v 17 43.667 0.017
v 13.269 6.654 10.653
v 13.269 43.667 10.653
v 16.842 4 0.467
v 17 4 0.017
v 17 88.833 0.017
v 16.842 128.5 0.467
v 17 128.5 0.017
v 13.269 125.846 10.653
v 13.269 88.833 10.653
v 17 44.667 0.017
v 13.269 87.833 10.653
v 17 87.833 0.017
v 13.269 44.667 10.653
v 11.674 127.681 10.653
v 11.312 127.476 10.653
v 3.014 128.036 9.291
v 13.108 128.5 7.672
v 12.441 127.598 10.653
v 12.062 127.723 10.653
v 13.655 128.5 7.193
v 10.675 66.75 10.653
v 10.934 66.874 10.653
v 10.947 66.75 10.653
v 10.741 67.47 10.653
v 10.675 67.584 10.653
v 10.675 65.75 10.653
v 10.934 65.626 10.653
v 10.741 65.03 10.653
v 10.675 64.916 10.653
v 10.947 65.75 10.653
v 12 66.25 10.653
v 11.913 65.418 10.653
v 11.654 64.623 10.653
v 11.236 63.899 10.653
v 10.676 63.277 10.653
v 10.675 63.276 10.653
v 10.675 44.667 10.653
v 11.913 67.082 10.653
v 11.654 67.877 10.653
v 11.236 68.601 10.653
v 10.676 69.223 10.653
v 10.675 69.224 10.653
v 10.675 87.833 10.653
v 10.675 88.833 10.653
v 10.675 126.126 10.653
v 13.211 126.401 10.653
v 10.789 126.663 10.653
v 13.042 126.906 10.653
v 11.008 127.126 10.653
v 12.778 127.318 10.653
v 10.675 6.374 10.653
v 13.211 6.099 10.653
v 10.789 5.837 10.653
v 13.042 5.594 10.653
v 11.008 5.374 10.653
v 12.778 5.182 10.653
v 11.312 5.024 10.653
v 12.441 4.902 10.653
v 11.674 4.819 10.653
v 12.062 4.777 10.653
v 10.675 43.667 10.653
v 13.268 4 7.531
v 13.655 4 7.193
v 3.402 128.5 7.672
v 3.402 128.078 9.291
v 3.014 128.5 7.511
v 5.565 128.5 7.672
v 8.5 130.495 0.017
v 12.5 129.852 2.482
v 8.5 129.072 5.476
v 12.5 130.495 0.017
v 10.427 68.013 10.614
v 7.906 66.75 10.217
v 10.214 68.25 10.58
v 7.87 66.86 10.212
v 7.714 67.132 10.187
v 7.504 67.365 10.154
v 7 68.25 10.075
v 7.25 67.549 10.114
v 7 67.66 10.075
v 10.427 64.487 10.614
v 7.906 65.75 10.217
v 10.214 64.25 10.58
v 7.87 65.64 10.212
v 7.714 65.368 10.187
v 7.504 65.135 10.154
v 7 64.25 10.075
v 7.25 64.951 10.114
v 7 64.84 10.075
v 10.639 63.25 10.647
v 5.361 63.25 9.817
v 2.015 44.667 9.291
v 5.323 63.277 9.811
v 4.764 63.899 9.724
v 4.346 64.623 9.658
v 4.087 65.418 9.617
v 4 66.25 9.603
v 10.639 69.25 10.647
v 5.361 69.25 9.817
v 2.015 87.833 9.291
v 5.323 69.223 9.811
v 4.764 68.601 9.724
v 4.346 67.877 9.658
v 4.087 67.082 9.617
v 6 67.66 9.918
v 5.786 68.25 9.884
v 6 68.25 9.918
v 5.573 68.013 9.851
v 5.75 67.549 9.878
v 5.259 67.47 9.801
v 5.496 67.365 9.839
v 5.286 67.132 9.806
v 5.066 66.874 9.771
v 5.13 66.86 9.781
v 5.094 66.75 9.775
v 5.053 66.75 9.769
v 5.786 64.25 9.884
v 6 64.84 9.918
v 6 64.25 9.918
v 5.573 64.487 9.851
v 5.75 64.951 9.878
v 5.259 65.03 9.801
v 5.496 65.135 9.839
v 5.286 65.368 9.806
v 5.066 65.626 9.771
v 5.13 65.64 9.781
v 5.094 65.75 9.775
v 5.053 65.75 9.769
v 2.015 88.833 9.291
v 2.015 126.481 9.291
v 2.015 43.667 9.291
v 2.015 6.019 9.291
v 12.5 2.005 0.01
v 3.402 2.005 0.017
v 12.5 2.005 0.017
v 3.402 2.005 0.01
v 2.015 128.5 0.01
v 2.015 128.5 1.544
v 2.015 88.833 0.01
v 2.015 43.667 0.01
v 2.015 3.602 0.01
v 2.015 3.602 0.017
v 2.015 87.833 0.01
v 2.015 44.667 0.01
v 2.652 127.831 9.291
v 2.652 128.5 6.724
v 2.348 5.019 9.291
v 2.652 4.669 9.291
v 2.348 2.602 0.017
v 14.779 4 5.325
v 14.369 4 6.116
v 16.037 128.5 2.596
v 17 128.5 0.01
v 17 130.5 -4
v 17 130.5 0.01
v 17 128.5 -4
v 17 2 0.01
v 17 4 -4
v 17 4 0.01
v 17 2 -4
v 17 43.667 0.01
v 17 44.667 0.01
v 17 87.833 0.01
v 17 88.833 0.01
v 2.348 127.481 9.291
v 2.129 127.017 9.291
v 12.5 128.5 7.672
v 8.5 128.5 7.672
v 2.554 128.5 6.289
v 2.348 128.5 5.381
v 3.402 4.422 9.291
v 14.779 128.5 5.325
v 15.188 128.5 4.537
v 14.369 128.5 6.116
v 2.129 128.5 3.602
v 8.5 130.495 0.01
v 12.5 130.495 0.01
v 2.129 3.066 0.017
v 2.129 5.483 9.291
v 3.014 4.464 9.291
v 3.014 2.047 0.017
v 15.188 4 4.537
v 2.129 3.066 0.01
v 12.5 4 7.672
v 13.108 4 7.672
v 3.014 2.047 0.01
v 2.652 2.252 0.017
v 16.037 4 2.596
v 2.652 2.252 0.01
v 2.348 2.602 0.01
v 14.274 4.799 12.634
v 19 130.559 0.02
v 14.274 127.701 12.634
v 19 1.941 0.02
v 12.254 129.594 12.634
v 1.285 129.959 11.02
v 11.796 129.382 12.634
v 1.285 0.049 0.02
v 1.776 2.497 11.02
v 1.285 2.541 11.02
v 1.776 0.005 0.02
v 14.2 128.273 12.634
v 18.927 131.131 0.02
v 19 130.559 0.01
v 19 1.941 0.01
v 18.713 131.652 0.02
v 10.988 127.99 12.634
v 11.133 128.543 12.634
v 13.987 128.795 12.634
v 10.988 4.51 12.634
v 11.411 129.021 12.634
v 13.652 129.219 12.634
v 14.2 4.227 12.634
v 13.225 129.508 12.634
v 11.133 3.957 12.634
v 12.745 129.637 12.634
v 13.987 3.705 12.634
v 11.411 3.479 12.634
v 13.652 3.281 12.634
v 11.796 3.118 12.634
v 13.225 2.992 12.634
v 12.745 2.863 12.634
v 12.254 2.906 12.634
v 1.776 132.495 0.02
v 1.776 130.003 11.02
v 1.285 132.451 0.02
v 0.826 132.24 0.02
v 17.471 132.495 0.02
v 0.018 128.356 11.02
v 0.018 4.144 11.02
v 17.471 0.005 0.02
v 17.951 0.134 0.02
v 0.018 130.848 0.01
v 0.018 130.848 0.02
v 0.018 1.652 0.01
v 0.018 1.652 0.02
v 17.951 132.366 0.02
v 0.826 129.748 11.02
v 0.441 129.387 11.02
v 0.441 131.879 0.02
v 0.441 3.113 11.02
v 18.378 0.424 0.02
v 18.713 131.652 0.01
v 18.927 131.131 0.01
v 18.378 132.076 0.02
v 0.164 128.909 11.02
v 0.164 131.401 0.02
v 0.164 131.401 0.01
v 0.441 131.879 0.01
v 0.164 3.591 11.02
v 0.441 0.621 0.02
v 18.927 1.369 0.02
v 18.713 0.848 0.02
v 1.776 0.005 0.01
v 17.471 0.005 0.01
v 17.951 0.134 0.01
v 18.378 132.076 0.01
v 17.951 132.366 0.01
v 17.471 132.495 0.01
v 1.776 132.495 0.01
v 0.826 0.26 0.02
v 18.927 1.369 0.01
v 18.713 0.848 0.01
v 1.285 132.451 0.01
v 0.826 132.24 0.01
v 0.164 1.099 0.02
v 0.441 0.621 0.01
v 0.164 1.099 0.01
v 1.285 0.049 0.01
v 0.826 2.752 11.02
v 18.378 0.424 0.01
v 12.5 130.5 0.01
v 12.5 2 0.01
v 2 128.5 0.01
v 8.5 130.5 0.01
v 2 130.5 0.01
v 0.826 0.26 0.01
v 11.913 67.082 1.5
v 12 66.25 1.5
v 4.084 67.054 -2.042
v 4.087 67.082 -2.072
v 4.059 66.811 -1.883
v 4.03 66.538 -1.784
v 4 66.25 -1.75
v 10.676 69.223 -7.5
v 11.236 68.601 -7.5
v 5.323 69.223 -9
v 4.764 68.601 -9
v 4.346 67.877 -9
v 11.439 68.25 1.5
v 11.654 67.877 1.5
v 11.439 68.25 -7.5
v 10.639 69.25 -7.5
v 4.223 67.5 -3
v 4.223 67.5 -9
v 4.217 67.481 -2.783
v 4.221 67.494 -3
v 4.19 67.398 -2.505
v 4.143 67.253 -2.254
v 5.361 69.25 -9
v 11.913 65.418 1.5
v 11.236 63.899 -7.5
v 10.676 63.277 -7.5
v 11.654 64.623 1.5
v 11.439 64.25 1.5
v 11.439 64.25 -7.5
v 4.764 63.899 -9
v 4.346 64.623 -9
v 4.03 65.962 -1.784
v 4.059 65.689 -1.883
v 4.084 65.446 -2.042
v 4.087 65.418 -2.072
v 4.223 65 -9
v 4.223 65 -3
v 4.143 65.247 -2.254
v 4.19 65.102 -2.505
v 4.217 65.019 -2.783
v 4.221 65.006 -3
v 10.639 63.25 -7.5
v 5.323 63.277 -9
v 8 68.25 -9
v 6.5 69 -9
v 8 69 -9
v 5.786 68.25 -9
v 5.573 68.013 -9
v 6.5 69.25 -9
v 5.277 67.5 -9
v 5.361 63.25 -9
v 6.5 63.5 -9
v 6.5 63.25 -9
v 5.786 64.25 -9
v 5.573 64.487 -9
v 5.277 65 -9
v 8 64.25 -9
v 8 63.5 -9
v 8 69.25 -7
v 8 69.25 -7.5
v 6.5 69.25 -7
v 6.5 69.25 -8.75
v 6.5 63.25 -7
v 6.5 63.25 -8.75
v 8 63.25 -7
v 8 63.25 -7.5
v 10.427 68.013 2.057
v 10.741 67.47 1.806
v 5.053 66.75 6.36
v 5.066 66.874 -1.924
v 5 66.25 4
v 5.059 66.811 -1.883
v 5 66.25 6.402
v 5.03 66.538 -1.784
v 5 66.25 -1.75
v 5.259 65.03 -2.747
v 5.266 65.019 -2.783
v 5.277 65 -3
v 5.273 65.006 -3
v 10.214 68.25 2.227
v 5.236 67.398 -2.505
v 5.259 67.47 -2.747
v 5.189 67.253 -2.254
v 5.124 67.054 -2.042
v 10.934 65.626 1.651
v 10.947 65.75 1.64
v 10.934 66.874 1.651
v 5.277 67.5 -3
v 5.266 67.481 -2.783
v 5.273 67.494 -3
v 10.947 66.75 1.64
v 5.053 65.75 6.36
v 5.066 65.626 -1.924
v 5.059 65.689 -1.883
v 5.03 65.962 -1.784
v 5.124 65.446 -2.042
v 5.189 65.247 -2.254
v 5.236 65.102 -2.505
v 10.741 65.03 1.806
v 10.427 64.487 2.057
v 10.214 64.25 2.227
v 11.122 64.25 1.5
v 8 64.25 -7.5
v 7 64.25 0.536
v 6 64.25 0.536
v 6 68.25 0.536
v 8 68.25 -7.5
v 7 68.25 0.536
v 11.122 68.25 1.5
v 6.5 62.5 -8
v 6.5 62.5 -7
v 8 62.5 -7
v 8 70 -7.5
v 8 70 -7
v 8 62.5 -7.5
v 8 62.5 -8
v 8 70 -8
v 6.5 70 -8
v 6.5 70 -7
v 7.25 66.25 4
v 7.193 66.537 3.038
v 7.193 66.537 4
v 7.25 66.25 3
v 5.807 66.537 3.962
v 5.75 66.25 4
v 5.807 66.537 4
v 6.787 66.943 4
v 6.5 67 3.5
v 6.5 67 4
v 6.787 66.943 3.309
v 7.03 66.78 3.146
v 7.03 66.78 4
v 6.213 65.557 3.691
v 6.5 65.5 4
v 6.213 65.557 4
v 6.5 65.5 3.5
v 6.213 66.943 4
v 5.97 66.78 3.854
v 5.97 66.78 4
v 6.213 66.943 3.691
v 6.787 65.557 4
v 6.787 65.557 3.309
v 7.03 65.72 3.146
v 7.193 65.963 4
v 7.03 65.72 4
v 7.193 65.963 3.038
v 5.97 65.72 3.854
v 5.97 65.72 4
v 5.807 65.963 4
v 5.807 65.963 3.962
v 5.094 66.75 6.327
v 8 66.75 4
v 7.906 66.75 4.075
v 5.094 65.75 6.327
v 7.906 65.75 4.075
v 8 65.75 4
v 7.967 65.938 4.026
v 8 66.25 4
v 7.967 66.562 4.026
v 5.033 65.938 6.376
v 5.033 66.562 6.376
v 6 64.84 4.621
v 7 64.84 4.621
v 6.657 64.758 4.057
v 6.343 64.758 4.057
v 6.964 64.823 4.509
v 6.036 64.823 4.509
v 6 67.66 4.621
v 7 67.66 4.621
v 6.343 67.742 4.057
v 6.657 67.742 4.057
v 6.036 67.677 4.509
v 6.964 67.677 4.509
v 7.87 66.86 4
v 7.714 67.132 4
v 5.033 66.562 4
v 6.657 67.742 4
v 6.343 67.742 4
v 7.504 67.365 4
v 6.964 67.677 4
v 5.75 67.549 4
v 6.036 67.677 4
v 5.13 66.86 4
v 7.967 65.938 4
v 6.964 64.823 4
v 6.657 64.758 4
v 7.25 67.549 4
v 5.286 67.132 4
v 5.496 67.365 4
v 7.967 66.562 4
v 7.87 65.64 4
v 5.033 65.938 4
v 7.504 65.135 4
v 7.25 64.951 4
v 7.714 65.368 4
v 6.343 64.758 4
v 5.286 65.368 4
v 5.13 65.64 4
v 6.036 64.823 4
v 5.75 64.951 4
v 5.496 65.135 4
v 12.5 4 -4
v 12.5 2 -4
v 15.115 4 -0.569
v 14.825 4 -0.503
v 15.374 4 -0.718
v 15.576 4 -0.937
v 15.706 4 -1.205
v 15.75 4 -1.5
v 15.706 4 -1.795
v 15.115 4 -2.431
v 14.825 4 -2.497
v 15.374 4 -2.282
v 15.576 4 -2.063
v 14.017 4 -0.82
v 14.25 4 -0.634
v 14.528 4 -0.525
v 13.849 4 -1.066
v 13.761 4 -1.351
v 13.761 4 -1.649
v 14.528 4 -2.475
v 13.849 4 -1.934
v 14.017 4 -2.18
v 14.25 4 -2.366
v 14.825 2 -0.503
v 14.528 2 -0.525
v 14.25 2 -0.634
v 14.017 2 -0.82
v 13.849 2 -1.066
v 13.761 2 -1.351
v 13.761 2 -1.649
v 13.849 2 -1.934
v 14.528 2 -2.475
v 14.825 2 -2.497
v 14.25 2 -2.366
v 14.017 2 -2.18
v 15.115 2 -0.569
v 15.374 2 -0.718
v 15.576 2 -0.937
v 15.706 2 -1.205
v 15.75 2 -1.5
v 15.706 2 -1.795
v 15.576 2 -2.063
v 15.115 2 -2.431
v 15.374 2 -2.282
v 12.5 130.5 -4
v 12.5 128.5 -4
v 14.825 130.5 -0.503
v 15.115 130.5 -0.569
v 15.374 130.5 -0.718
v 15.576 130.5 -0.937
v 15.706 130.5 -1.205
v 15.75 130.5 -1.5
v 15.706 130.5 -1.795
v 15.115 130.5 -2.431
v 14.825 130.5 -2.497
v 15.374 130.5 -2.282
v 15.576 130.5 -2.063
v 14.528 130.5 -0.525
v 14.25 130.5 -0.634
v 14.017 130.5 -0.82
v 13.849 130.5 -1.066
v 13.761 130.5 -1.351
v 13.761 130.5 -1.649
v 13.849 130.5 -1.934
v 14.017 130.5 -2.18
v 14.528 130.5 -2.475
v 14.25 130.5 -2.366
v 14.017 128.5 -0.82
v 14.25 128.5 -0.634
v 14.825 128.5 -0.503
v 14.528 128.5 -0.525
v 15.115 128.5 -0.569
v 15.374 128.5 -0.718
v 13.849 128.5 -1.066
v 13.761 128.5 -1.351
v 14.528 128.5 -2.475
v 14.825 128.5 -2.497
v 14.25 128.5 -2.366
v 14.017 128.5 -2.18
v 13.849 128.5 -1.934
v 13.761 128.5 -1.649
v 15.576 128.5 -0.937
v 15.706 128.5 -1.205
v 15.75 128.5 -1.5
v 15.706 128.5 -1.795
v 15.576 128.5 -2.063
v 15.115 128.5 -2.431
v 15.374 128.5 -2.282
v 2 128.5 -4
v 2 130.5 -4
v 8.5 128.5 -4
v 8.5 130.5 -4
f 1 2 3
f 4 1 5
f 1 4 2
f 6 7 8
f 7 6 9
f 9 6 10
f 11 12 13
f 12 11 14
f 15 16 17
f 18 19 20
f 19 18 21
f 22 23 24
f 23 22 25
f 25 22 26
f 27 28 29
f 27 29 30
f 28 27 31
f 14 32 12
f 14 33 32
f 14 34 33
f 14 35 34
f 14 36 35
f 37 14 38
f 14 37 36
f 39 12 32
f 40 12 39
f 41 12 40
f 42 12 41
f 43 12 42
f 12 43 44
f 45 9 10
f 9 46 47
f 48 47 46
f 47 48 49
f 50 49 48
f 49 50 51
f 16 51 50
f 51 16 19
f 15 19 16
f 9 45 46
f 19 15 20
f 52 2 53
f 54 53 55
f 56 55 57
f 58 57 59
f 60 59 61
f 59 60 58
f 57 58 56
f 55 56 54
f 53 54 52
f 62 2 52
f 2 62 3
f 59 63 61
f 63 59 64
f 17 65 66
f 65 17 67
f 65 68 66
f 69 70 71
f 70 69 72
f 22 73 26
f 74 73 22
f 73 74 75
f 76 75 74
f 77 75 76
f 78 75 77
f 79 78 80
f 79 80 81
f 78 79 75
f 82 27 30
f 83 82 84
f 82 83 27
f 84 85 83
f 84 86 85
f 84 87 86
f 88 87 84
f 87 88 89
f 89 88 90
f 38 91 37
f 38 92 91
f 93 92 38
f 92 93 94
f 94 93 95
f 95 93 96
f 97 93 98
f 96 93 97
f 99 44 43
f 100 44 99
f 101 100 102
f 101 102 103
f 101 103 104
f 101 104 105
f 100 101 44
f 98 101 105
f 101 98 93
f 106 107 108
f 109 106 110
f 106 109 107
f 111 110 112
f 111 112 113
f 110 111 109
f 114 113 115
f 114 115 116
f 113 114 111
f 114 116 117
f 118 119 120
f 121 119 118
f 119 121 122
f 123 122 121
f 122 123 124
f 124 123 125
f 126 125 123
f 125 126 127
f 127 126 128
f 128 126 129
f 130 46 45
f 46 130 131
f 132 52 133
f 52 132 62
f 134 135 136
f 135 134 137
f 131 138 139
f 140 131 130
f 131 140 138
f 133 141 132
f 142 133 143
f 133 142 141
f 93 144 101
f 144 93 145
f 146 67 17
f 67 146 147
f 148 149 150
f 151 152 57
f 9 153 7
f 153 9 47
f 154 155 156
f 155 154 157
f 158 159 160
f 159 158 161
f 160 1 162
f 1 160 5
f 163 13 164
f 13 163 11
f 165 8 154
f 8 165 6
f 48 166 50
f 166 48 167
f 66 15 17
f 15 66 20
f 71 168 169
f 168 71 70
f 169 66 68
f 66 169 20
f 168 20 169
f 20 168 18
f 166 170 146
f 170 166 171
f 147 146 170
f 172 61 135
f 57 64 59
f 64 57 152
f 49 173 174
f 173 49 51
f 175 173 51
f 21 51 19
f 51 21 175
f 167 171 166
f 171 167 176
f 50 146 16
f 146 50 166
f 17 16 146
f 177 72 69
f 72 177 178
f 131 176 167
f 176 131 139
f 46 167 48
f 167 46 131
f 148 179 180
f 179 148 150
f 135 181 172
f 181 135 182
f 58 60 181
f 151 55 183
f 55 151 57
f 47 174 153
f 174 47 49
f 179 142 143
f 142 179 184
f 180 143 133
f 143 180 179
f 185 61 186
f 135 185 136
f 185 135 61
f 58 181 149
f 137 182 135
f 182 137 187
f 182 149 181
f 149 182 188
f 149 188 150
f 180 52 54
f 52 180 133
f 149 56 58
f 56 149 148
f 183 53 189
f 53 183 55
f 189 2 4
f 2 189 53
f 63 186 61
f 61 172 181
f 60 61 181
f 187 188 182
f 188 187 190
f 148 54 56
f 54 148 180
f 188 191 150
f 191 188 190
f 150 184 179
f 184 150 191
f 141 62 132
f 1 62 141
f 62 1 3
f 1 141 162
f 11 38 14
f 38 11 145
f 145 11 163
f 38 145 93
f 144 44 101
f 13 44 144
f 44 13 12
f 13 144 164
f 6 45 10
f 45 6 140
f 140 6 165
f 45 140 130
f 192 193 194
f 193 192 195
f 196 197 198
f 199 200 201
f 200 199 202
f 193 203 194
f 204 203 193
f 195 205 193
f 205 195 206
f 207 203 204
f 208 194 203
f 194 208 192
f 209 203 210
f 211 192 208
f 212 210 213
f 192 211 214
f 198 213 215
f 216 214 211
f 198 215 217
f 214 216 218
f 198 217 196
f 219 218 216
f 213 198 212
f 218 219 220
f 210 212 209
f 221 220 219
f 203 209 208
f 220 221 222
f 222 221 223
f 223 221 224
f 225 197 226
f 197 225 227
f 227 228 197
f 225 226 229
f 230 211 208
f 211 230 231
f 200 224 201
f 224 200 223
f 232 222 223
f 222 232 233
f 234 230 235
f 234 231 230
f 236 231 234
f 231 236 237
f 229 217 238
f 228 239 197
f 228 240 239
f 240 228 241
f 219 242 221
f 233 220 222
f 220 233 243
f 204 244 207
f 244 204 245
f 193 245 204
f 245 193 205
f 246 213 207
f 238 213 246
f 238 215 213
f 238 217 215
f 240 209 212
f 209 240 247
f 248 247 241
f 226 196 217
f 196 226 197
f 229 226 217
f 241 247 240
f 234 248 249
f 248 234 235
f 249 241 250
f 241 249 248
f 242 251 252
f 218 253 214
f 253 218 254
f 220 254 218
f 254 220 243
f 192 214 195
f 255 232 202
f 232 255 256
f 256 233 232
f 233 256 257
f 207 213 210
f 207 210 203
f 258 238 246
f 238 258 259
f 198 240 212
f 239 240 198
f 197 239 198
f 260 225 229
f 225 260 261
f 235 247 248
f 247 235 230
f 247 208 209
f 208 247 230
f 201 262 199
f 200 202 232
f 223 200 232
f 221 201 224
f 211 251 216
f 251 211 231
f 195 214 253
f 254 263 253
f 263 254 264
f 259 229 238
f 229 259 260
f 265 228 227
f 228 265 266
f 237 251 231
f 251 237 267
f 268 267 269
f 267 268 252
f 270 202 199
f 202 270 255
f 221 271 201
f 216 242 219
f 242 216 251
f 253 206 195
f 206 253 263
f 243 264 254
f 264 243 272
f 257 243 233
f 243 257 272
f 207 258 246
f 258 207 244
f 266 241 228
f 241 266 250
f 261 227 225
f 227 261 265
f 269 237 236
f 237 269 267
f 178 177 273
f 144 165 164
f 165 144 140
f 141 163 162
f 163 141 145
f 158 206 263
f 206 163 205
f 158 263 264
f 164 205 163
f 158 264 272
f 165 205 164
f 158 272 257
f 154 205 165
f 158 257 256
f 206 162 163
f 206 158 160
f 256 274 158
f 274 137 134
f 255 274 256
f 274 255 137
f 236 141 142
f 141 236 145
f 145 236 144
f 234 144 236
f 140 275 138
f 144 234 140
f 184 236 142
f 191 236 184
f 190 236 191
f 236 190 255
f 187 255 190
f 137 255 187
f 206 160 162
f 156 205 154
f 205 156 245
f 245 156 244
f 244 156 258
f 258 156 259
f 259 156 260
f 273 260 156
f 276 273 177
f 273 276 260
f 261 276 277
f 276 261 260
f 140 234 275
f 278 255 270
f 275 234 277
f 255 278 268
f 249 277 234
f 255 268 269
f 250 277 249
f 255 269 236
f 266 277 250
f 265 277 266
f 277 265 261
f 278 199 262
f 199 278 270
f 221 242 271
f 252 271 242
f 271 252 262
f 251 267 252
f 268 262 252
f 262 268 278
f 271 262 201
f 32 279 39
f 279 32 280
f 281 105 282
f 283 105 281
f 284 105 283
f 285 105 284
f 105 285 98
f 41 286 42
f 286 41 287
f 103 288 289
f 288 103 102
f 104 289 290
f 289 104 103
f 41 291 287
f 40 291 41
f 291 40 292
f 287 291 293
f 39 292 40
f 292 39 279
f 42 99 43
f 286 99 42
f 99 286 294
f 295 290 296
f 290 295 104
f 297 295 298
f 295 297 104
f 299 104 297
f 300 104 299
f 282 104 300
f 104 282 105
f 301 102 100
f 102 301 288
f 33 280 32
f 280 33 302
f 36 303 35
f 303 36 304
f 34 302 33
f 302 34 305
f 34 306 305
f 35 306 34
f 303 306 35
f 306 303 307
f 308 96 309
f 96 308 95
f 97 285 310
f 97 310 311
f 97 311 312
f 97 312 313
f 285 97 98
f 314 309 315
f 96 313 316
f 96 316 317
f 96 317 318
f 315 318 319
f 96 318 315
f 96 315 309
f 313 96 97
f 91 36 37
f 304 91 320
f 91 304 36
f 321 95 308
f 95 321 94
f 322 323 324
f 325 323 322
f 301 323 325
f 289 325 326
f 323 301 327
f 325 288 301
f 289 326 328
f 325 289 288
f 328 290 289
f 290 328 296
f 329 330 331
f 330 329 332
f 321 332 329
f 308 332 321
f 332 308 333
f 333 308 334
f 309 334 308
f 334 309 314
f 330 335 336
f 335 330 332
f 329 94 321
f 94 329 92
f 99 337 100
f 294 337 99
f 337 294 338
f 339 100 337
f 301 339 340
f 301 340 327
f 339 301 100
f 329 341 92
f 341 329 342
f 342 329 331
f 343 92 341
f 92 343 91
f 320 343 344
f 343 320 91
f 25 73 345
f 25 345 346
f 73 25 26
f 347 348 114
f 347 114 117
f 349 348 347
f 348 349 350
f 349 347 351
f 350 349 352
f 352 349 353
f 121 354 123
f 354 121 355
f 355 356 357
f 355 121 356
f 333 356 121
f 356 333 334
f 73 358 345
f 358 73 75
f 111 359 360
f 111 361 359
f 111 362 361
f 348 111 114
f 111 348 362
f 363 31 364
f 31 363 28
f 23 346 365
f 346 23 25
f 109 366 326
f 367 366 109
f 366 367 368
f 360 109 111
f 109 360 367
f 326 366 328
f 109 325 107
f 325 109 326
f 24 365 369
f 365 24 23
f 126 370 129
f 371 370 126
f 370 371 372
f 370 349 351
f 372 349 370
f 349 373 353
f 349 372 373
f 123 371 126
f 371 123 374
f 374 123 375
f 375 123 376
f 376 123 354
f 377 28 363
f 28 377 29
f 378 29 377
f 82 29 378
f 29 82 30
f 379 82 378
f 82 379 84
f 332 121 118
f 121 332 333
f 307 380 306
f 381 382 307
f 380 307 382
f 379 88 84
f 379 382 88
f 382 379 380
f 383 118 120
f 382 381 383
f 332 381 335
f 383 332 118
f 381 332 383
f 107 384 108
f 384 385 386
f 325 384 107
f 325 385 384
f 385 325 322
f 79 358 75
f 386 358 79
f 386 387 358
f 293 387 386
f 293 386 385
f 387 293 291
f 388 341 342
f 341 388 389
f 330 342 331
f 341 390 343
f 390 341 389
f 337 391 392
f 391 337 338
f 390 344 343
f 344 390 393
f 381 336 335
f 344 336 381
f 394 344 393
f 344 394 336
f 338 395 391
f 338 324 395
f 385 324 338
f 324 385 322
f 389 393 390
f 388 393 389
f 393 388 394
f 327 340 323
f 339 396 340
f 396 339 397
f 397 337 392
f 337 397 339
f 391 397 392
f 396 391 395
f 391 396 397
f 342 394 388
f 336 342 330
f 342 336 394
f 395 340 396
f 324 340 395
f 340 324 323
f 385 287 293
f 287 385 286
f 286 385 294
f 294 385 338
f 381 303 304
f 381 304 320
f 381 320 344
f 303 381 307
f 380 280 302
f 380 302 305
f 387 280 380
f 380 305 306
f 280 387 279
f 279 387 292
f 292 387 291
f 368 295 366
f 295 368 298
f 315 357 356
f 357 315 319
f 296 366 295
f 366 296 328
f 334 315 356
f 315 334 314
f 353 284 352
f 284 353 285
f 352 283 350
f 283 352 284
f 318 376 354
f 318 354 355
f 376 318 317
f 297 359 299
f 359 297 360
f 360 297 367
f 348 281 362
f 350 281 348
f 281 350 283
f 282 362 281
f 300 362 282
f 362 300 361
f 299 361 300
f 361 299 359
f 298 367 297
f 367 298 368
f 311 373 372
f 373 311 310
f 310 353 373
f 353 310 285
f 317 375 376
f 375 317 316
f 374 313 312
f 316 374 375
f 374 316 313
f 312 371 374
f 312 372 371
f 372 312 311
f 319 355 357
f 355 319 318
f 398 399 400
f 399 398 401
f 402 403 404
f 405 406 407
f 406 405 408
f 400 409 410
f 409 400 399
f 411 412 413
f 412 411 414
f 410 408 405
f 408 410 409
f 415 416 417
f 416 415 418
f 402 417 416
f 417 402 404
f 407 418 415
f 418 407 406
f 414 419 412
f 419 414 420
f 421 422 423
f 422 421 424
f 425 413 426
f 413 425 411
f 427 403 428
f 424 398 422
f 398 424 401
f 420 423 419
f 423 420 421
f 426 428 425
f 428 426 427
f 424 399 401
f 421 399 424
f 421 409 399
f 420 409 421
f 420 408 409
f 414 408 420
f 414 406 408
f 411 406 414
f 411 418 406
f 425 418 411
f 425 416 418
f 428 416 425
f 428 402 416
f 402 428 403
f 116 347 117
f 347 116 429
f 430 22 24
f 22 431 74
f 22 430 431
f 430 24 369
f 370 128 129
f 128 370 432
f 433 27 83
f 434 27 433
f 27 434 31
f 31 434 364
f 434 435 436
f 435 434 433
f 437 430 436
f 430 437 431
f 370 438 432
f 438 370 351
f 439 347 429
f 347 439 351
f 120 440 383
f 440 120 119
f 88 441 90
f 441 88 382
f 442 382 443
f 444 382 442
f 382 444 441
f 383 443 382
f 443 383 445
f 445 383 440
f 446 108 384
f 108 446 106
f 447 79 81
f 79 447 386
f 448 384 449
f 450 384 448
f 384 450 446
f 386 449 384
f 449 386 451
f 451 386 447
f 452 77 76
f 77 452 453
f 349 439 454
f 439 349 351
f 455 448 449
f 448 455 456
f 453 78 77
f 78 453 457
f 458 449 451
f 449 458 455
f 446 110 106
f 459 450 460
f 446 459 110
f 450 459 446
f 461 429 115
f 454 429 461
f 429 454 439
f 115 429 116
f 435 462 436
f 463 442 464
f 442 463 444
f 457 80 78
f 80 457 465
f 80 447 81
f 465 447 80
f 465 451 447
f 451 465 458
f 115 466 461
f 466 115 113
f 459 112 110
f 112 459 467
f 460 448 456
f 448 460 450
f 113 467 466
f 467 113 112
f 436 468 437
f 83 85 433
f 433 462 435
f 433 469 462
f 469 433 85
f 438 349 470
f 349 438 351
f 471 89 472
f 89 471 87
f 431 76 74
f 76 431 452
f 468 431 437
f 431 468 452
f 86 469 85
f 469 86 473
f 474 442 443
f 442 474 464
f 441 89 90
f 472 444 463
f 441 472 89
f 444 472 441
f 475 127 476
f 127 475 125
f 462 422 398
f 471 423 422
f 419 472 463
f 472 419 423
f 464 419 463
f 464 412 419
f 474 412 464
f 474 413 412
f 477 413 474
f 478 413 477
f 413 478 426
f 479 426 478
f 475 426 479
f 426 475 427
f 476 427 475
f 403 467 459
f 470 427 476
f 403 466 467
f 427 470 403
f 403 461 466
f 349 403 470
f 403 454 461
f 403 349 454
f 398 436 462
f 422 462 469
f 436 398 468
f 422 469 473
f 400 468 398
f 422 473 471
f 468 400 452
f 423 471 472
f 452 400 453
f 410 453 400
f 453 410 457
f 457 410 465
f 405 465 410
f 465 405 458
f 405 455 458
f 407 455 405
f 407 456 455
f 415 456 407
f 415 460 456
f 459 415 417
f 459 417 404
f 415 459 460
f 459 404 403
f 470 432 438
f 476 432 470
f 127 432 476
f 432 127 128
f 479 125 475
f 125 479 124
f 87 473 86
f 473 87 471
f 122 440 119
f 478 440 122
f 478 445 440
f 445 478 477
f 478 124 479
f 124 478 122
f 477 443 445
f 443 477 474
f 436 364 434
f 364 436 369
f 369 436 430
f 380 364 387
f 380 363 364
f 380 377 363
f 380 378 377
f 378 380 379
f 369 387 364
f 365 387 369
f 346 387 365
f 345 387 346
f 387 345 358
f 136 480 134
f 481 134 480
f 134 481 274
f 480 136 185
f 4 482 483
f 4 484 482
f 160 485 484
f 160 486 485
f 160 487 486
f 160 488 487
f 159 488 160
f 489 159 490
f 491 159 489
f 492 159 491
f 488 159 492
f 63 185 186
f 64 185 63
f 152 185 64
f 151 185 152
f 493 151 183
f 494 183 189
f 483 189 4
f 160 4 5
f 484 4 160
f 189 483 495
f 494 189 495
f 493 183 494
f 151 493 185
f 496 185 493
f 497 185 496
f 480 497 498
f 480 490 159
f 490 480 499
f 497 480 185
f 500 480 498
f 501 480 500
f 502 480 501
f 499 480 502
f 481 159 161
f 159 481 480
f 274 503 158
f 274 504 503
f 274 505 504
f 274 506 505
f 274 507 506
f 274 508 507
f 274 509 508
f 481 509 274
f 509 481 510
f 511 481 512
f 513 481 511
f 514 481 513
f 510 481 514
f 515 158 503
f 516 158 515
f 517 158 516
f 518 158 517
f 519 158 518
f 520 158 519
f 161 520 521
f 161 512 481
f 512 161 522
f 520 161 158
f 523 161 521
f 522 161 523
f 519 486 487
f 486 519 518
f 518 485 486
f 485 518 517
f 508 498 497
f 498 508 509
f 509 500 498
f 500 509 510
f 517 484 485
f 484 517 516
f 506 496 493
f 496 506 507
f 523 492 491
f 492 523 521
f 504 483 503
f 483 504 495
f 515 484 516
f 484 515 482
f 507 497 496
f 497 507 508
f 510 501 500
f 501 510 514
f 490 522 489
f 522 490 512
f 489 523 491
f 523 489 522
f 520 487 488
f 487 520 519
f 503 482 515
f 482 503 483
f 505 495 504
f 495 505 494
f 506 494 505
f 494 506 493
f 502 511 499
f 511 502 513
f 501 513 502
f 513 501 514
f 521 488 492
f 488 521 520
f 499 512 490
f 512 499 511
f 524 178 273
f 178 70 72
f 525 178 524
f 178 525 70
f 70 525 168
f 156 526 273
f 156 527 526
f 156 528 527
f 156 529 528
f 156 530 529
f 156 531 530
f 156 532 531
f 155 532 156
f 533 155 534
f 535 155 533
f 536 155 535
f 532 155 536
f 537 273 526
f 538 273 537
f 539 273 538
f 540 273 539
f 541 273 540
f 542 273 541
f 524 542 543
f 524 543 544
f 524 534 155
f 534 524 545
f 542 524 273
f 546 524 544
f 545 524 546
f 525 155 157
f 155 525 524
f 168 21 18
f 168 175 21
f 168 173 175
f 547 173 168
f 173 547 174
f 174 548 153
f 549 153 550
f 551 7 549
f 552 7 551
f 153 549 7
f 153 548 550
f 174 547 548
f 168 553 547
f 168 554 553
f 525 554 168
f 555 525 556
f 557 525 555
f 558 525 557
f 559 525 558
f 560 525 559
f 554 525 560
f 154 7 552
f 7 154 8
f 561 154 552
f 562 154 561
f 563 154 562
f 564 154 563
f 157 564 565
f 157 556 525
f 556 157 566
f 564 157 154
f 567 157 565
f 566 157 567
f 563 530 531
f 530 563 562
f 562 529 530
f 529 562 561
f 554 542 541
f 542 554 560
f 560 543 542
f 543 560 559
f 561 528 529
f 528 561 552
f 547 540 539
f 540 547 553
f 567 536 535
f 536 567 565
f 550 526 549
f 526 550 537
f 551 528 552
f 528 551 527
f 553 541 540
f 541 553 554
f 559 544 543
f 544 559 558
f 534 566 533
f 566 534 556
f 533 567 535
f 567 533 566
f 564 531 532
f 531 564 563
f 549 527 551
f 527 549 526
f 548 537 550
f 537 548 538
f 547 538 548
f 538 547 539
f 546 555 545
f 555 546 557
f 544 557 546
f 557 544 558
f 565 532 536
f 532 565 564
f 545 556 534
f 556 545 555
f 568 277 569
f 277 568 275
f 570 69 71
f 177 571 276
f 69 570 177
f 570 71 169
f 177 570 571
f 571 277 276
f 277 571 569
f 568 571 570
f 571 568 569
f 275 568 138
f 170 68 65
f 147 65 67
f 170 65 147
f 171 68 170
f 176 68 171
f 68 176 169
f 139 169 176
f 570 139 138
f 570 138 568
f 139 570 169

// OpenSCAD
//measures are in millimeters
//(feel free to cocnvert them to attoparsecs)
AY=132.5;
AX=19.0;
BY=127.5;
BLX=14.5;
EZ=11.0;
FLZ=14.0;
H=12.75;
SHAFT_OFF_Y=AY/2;
SHAFT_OFF_X=8.0; //???
CLIP_X=2;
CLIP_Y=0.75;
CLIP_H=3*CLIP_Y;
CORNER_RADIUS=2;
SHAFT_X=8.0;
SHAFT_Y=6.0;
SHAFT_LENGTH=9.0;
SHAFT_THICKNESS=1.0;
SHAFT_CLIP_WIDTH=3.0;
SHAFT_CLIP_THICKNESS=0.75;
SHAFT_CLIP_HEIGHT=2.0;
SHAFT_CLIP_SLOPE_DEPTH=1.0;
SHAFT_CLIP_ANGLE=45;
SHAFT_END_CUTOUT_HEIGHT=1.5;
SHAFT_LARGE_SLOT_TO_BASE=1.5;
SHAFT_SMALL_SLOT_LENGTH=7.25;
SHAFT_SMALL_SLOT_WIDTH=2.5;
SHAFT_SPRING_HOLDER_WIDTH=3.0;
SHAFT_SPRING_HOLDER_TO_BASE=4.0;
SHAFT_SPRING_GUIDE_WIDTH=1.0;
SHAFT_SPRING_GUIDE_SIDES_HEIGHT=3.5;
STRUT_THICKNESS=1;
STRUT_HEIGHT=3;
STRUT_SPACING=1;
SHAFT_SPRING_HOLDER_NIPPLE_HEIGHT=1;
SHAFT_SPRING_HOLDER_NIPPLE_RADIUS=0.75;

WIRE_HOLDER_HEIGHT=4.0;
WIRE_HOLDER_WIDTH=4.5;
WIRE_DIAMETER=2.0;
WIRE_HOLE_OFF_Z=0.5;

MYSTERIOUS_TAB_WIDTH=6.5;
MYSTERIOUS_TAB_HEIGHT=5.5;

SHAFT_SMALL_SLOT_BEVEL=0.5;

WallThickness=2.0;
ClipWidth=2.2;
ClipDepth=0.75;

//ascfront=FLZ/sqrt(pow(FLZ,2)-pow(H,2));
//asctop=(H-EZ)/sqrt(pow(BLX,2)-pow((H-EZ),2));

alpha=asin((H-EZ)/BLX);
beta=asin(H/FLZ);
gamma=90-asin((0.5*(AY-BY))/EZ);

module keycap(){
	scale([AX/(AX+2*CORNER_RADIUS),AY/(AY+2*CORNER_RADIUS),1])
	translate([CORNER_RADIUS,CORNER_RADIUS,0.01])
	minkowski(){
		difference(){
			cube([AX,AY,H]);
			rotate(a=gamma,v=[1,0,0]) cube([200,200,200]);
			translate([0,AY,0]) rotate(a=90-gamma,v=[1,0,0]) cube([200,200,200]);
			translate([0,0,EZ]) rotate(a=-alpha,v=[0,1,0]) translate([-100,0,0]) cube([200,200,200]);
			translate([AX,0,0]) rotate(a=beta-90,v=[0,1,0]) cube([200,200,200]);
		}
		cylinder(h=0.01,r=CORNER_RADIUS,$fs=0.6);
		//rotate(a=90,v=[1,0,0]) cylinder(h=0.01,r=1,$fs=0.3);
	}
}

module shaft(){
	spring_guide_length = SHAFT_X-SHAFT_THICKNESS-SHAFT_SPRING_HOLDER_WIDTH;
	spring_guide_height = SHAFT_SPRING_HOLDER_TO_BASE-SHAFT_LARGE_SLOT_TO_BASE;
	translate([0,0,-SHAFT_LENGTH]) difference(){
		union(){
			difference(){
				union(){
					difference(){
						intersection(){
							cylinder(h=200,r=SHAFT_X/2,$fs=0.3);
							translate([-SHAFT_X/2,-SHAFT_Y/2,0]) cube([SHAFT_X,SHAFT_Y,200]);
						}
						intersection(){
							cylinder(h=200,r=SHAFT_X/2-SHAFT_THICKNESS,$fs=0.3);
							translate([-SHAFT_X/2+SHAFT_THICKNESS,-SHAFT_Y/2+SHAFT_THICKNESS,0]) cube([SHAFT_X-2*SHAFT_THICKNESS,SHAFT_Y-2*SHAFT_THICKNESS,200]);
						}
					}
					translate([-SHAFT_CLIP_WIDTH/2, -SHAFT_CLIP_THICKNESS-SHAFT_Y/2,0]) cube([SHAFT_CLIP_WIDTH/2, SHAFT_CLIP_THICKNESS,SHAFT_CLIP_HEIGHT]);
					translate([-SHAFT_CLIP_WIDTH/2, SHAFT_Y/2,0]) cube([SHAFT_CLIP_WIDTH/2, SHAFT_CLIP_THICKNESS,SHAFT_CLIP_HEIGHT]);
				}
				translate([-SHAFT_CLIP_WIDTH/2, -SHAFT_CLIP_THICKNESS-SHAFT_Y/2+SHAFT_CLIP_SLOPE_DEPTH,0]) rotate(a=90+SHAFT_CLIP_ANGLE,v=[1,0,0]) cube([SHAFT_CLIP_WIDTH/2,200,200]);
				translate([-SHAFT_CLIP_WIDTH/2, SHAFT_Y/2+SHAFT_CLIP_THICKNESS-SHAFT_CLIP_SLOPE_DEPTH,0]) mirror([0,1,0]) rotate(a=90+SHAFT_CLIP_ANGLE,v=[1,0,0]) cube([SHAFT_CLIP_WIDTH/2,200,200]);
				translate([0,-100,0]) cube([200,200,SHAFT_END_CUTOUT_HEIGHT]);
				translate([0,-SHAFT_Y/2+SHAFT_THICKNESS,0]) cube([200,SHAFT_Y-SHAFT_THICKNESS*2,SHAFT_LENGTH+SHAFT_LARGE_SLOT_TO_BASE]);
				//small slot cutout
				translate([0,-SHAFT_SMALL_SLOT_WIDTH/2,0]){
					mirror([1,0,0]) cube([200,SHAFT_SMALL_SLOT_WIDTH,SHAFT_SMALL_SLOT_LENGTH-0.5*SHAFT_SMALL_SLOT_WIDTH]);
				}
				//small slot cutout
				translate([0,0,SHAFT_SMALL_SLOT_LENGTH-0.5*SHAFT_SMALL_SLOT_WIDTH]) rotate(a=-90,v=[0,1,0]) cylinder(r=SHAFT_SMALL_SLOT_WIDTH/2,h=SHAFT_X/2,$fs=0.3);
			}
			//spring holder
			translate([-SHAFT_X/2+SHAFT_SPRING_HOLDER_WIDTH/2+SHAFT_THICKNESS,0,SHAFT_LENGTH+SHAFT_SPRING_HOLDER_TO_BASE]) cylinder(r=SHAFT_SPRING_HOLDER_WIDTH/2,h=200,$fs=0.3);
			intersection(){
				translate([-SHAFT_X/2+SHAFT_SPRING_HOLDER_WIDTH/2+SHAFT_THICKNESS,0,SHAFT_LENGTH+SHAFT_SPRING_HOLDER_TO_BASE-SHAFT_SPRING_HOLDER_NIPPLE_HEIGHT]) cylinder(r=SHAFT_SPRING_HOLDER_NIPPLE_RADIUS,h=200,$fs=0.3);
				translate([0,0,SHAFT_LENGTH+SHAFT_SPRING_HOLDER_TO_BASE-SHAFT_SPRING_HOLDER_NIPPLE_HEIGHT*1.5]) rotate(v=[0,1,0], a=atan(SHAFT_SPRING_HOLDER_NIPPLE_HEIGHT/(SHAFT_SPRING_HOLDER_NIPPLE_RADIUS*2)))              translate([-100,-100,0]) cube([200,200,200]);
			}
			intersection(){
				difference(){
					translate([SHAFT_X/2-SHAFT_THICKNESS,-0.5*SHAFT_SPRING_GUIDE_WIDTH,SHAFT_LENGTH+SHAFT_LARGE_SLOT_TO_BASE]) mirror([1,0,0]) cube([200,SHAFT_SPRING_GUIDE_WIDTH,200]);
					translate([-SHAFT_X/2+SHAFT_SPRING_HOLDER_WIDTH+SHAFT_THICKNESS,-0.5*SHAFT_SPRING_GUIDE_WIDTH,SHAFT_LENGTH+SHAFT_SPRING_HOLDER_TO_BASE])
					mirror([1,0,0]) rotate(a=90-asin(spring_guide_height/spring_guide_length),v=[0,1,0]) mirror([0,0,1]) translate([0,0,-100]) cube([200,SHAFT_SPRING_GUIDE_WIDTH,200]);
				}
				cube([SHAFT_X-SHAFT_THICKNESS,SHAFT_Y,200],center=true);
			}
			//side spring guides
			difference(){
				translate([-SHAFT_X/2+SHAFT_THICKNESS+(SHAFT_SPRING_HOLDER_WIDTH-SHAFT_SPRING_GUIDE_WIDTH)/2,-SHAFT_Y/2+SHAFT_THICKNESS,SHAFT_LENGTH+SHAFT_SPRING_HOLDER_TO_BASE-SHAFT_SPRING_GUIDE_SIDES_HEIGHT]) cube([SHAFT_SPRING_GUIDE_WIDTH,SHAFT_Y-2*SHAFT_THICKNESS,EZ-SHAFT_SPRING_HOLDER_TO_BASE+SHAFT_SPRING_GUIDE_SIDES_HEIGHT]);
				translate([-SHAFT_X/2+SHAFT_THICKNESS+(SHAFT_SPRING_HOLDER_WIDTH-SHAFT_SPRING_GUIDE_WIDTH)/2,-SHAFT_SPRING_HOLDER_WIDTH/2,SHAFT_LENGTH+SHAFT_SPRING_HOLDER_TO_BASE]) rotate(a=-asin(((SHAFT_Y-SHAFT_SPRING_HOLDER_WIDTH)/2-SHAFT_THICKNESS)/SHAFT_SPRING_GUIDE_SIDES_HEIGHT),v=[1,0,0]) translate([0,0,-100]) cube([SHAFT_SPRING_GUIDE_WIDTH,200,200]);
			}
			difference(){
				translate([-SHAFT_X/2+SHAFT_THICKNESS+(SHAFT_SPRING_HOLDER_WIDTH-SHAFT_SPRING_GUIDE_WIDTH)/2,-SHAFT_Y/2+SHAFT_THICKNESS,SHAFT_LENGTH+SHAFT_SPRING_HOLDER_TO_BASE-SHAFT_SPRING_GUIDE_SIDES_HEIGHT]) cube([SHAFT_SPRING_GUIDE_WIDTH,SHAFT_Y-2*SHAFT_THICKNESS,EZ-SHAFT_SPRING_HOLDER_TO_BASE+SHAFT_SPRING_GUIDE_SIDES_HEIGHT]);
				mirror([0,1,0]) translate([-SHAFT_X/2+SHAFT_THICKNESS+(SHAFT_SPRING_HOLDER_WIDTH-SHAFT_SPRING_GUIDE_WIDTH)/2,-SHAFT_SPRING_HOLDER_WIDTH/2,SHAFT_LENGTH+SHAFT_SPRING_HOLDER_TO_BASE]) rotate(a=-asin(((SHAFT_Y-SHAFT_SPRING_HOLDER_WIDTH)/2-SHAFT_THICKNESS)/SHAFT_SPRING_GUIDE_SIDES_HEIGHT),v=[1,0,0]) translate([0,0,-100]) cube([SHAFT_SPRING_GUIDE_WIDTH,200,200]);
			}
		}
		translate([-SHAFT_X/2+SHAFT_SPRING_HOLDER_WIDTH+SHAFT_THICKNESS,-SHAFT_Y/2+SHAFT_THICKNESS,SHAFT_LENGTH+SHAFT_SPRING_HOLDER_TO_BASE]) mirror([1,0,0]) rotate(a=90-asin(spring_guide_height/spring_guide_length),v=[0,1,0]) mirror([0,0,1]) cube([SHAFT_THICKNESS,SHAFT_Y-2*SHAFT_THICKNESS,200]);
	}
}

difference(){
	keycap();
	difference(){
		translate([WallThickness, WallThickness, 0]) scale(v=[1-2*WallThickness/AX, 1-2*WallThickness/AY, 1-WallThickness/H]) keycap();
		translate([0,AY/3,0]) cube([200,STRUT_THICKNESS,200],center=true);
		translate([0,2*AY/3,0]) cube([200,STRUT_THICKNESS,200],center=true);
	}
}
intersection(){
	union(){
		translate([WallThickness, WallThickness, 0]) scale(v=[1-2*WallThickness/AX, 1-2*WallThickness/AY, 1-WallThickness/H]) keycap();
		translate([-200,-200,-399.9]) cube([400,400,400]);
	}
	union(){
		translate([SHAFT_OFF_X,SHAFT_OFF_Y]) shaft();
		translate([AX-WIRE_HOLDER_WIDTH-WallThickness, WallThickness, -WIRE_HOLDER_HEIGHT]) difference(){
			cube([WIRE_HOLDER_WIDTH,WallThickness,WIRE_HOLDER_HEIGHT+H]);
			translate([WIRE_HOLDER_WIDTH/2,WallThickness*1.5,WIRE_HOLDER_HEIGHT-WIRE_DIAMETER/2-WIRE_HOLE_OFF_Z]) rotate([90,0,0]) cylinder(r=WIRE_DIAMETER/2,h=WallThickness*2,$fs=0.3);
		}
		translate([AX-WIRE_HOLDER_WIDTH-WallThickness, AY-2*WallThickness, -WIRE_HOLDER_HEIGHT]) difference(){
			cube([WIRE_HOLDER_WIDTH,WallThickness,WIRE_HOLDER_HEIGHT+H]);
			translate([WIRE_HOLDER_WIDTH/2,WallThickness*1.5,WIRE_HOLDER_HEIGHT-WIRE_DIAMETER/2-WIRE_HOLE_OFF_Z]) rotate([90,0,0]) cylinder(r=WIRE_DIAMETER/2,h=WallThickness*2,$fs=0.3);
		}
		translate([WallThickness, AY-2*WallThickness, -WIRE_HOLDER_HEIGHT]) cube([MYSTERIOUS_TAB_WIDTH,WallThickness,H+MYSTERIOUS_TAB_HEIGHT]);
	}
}
